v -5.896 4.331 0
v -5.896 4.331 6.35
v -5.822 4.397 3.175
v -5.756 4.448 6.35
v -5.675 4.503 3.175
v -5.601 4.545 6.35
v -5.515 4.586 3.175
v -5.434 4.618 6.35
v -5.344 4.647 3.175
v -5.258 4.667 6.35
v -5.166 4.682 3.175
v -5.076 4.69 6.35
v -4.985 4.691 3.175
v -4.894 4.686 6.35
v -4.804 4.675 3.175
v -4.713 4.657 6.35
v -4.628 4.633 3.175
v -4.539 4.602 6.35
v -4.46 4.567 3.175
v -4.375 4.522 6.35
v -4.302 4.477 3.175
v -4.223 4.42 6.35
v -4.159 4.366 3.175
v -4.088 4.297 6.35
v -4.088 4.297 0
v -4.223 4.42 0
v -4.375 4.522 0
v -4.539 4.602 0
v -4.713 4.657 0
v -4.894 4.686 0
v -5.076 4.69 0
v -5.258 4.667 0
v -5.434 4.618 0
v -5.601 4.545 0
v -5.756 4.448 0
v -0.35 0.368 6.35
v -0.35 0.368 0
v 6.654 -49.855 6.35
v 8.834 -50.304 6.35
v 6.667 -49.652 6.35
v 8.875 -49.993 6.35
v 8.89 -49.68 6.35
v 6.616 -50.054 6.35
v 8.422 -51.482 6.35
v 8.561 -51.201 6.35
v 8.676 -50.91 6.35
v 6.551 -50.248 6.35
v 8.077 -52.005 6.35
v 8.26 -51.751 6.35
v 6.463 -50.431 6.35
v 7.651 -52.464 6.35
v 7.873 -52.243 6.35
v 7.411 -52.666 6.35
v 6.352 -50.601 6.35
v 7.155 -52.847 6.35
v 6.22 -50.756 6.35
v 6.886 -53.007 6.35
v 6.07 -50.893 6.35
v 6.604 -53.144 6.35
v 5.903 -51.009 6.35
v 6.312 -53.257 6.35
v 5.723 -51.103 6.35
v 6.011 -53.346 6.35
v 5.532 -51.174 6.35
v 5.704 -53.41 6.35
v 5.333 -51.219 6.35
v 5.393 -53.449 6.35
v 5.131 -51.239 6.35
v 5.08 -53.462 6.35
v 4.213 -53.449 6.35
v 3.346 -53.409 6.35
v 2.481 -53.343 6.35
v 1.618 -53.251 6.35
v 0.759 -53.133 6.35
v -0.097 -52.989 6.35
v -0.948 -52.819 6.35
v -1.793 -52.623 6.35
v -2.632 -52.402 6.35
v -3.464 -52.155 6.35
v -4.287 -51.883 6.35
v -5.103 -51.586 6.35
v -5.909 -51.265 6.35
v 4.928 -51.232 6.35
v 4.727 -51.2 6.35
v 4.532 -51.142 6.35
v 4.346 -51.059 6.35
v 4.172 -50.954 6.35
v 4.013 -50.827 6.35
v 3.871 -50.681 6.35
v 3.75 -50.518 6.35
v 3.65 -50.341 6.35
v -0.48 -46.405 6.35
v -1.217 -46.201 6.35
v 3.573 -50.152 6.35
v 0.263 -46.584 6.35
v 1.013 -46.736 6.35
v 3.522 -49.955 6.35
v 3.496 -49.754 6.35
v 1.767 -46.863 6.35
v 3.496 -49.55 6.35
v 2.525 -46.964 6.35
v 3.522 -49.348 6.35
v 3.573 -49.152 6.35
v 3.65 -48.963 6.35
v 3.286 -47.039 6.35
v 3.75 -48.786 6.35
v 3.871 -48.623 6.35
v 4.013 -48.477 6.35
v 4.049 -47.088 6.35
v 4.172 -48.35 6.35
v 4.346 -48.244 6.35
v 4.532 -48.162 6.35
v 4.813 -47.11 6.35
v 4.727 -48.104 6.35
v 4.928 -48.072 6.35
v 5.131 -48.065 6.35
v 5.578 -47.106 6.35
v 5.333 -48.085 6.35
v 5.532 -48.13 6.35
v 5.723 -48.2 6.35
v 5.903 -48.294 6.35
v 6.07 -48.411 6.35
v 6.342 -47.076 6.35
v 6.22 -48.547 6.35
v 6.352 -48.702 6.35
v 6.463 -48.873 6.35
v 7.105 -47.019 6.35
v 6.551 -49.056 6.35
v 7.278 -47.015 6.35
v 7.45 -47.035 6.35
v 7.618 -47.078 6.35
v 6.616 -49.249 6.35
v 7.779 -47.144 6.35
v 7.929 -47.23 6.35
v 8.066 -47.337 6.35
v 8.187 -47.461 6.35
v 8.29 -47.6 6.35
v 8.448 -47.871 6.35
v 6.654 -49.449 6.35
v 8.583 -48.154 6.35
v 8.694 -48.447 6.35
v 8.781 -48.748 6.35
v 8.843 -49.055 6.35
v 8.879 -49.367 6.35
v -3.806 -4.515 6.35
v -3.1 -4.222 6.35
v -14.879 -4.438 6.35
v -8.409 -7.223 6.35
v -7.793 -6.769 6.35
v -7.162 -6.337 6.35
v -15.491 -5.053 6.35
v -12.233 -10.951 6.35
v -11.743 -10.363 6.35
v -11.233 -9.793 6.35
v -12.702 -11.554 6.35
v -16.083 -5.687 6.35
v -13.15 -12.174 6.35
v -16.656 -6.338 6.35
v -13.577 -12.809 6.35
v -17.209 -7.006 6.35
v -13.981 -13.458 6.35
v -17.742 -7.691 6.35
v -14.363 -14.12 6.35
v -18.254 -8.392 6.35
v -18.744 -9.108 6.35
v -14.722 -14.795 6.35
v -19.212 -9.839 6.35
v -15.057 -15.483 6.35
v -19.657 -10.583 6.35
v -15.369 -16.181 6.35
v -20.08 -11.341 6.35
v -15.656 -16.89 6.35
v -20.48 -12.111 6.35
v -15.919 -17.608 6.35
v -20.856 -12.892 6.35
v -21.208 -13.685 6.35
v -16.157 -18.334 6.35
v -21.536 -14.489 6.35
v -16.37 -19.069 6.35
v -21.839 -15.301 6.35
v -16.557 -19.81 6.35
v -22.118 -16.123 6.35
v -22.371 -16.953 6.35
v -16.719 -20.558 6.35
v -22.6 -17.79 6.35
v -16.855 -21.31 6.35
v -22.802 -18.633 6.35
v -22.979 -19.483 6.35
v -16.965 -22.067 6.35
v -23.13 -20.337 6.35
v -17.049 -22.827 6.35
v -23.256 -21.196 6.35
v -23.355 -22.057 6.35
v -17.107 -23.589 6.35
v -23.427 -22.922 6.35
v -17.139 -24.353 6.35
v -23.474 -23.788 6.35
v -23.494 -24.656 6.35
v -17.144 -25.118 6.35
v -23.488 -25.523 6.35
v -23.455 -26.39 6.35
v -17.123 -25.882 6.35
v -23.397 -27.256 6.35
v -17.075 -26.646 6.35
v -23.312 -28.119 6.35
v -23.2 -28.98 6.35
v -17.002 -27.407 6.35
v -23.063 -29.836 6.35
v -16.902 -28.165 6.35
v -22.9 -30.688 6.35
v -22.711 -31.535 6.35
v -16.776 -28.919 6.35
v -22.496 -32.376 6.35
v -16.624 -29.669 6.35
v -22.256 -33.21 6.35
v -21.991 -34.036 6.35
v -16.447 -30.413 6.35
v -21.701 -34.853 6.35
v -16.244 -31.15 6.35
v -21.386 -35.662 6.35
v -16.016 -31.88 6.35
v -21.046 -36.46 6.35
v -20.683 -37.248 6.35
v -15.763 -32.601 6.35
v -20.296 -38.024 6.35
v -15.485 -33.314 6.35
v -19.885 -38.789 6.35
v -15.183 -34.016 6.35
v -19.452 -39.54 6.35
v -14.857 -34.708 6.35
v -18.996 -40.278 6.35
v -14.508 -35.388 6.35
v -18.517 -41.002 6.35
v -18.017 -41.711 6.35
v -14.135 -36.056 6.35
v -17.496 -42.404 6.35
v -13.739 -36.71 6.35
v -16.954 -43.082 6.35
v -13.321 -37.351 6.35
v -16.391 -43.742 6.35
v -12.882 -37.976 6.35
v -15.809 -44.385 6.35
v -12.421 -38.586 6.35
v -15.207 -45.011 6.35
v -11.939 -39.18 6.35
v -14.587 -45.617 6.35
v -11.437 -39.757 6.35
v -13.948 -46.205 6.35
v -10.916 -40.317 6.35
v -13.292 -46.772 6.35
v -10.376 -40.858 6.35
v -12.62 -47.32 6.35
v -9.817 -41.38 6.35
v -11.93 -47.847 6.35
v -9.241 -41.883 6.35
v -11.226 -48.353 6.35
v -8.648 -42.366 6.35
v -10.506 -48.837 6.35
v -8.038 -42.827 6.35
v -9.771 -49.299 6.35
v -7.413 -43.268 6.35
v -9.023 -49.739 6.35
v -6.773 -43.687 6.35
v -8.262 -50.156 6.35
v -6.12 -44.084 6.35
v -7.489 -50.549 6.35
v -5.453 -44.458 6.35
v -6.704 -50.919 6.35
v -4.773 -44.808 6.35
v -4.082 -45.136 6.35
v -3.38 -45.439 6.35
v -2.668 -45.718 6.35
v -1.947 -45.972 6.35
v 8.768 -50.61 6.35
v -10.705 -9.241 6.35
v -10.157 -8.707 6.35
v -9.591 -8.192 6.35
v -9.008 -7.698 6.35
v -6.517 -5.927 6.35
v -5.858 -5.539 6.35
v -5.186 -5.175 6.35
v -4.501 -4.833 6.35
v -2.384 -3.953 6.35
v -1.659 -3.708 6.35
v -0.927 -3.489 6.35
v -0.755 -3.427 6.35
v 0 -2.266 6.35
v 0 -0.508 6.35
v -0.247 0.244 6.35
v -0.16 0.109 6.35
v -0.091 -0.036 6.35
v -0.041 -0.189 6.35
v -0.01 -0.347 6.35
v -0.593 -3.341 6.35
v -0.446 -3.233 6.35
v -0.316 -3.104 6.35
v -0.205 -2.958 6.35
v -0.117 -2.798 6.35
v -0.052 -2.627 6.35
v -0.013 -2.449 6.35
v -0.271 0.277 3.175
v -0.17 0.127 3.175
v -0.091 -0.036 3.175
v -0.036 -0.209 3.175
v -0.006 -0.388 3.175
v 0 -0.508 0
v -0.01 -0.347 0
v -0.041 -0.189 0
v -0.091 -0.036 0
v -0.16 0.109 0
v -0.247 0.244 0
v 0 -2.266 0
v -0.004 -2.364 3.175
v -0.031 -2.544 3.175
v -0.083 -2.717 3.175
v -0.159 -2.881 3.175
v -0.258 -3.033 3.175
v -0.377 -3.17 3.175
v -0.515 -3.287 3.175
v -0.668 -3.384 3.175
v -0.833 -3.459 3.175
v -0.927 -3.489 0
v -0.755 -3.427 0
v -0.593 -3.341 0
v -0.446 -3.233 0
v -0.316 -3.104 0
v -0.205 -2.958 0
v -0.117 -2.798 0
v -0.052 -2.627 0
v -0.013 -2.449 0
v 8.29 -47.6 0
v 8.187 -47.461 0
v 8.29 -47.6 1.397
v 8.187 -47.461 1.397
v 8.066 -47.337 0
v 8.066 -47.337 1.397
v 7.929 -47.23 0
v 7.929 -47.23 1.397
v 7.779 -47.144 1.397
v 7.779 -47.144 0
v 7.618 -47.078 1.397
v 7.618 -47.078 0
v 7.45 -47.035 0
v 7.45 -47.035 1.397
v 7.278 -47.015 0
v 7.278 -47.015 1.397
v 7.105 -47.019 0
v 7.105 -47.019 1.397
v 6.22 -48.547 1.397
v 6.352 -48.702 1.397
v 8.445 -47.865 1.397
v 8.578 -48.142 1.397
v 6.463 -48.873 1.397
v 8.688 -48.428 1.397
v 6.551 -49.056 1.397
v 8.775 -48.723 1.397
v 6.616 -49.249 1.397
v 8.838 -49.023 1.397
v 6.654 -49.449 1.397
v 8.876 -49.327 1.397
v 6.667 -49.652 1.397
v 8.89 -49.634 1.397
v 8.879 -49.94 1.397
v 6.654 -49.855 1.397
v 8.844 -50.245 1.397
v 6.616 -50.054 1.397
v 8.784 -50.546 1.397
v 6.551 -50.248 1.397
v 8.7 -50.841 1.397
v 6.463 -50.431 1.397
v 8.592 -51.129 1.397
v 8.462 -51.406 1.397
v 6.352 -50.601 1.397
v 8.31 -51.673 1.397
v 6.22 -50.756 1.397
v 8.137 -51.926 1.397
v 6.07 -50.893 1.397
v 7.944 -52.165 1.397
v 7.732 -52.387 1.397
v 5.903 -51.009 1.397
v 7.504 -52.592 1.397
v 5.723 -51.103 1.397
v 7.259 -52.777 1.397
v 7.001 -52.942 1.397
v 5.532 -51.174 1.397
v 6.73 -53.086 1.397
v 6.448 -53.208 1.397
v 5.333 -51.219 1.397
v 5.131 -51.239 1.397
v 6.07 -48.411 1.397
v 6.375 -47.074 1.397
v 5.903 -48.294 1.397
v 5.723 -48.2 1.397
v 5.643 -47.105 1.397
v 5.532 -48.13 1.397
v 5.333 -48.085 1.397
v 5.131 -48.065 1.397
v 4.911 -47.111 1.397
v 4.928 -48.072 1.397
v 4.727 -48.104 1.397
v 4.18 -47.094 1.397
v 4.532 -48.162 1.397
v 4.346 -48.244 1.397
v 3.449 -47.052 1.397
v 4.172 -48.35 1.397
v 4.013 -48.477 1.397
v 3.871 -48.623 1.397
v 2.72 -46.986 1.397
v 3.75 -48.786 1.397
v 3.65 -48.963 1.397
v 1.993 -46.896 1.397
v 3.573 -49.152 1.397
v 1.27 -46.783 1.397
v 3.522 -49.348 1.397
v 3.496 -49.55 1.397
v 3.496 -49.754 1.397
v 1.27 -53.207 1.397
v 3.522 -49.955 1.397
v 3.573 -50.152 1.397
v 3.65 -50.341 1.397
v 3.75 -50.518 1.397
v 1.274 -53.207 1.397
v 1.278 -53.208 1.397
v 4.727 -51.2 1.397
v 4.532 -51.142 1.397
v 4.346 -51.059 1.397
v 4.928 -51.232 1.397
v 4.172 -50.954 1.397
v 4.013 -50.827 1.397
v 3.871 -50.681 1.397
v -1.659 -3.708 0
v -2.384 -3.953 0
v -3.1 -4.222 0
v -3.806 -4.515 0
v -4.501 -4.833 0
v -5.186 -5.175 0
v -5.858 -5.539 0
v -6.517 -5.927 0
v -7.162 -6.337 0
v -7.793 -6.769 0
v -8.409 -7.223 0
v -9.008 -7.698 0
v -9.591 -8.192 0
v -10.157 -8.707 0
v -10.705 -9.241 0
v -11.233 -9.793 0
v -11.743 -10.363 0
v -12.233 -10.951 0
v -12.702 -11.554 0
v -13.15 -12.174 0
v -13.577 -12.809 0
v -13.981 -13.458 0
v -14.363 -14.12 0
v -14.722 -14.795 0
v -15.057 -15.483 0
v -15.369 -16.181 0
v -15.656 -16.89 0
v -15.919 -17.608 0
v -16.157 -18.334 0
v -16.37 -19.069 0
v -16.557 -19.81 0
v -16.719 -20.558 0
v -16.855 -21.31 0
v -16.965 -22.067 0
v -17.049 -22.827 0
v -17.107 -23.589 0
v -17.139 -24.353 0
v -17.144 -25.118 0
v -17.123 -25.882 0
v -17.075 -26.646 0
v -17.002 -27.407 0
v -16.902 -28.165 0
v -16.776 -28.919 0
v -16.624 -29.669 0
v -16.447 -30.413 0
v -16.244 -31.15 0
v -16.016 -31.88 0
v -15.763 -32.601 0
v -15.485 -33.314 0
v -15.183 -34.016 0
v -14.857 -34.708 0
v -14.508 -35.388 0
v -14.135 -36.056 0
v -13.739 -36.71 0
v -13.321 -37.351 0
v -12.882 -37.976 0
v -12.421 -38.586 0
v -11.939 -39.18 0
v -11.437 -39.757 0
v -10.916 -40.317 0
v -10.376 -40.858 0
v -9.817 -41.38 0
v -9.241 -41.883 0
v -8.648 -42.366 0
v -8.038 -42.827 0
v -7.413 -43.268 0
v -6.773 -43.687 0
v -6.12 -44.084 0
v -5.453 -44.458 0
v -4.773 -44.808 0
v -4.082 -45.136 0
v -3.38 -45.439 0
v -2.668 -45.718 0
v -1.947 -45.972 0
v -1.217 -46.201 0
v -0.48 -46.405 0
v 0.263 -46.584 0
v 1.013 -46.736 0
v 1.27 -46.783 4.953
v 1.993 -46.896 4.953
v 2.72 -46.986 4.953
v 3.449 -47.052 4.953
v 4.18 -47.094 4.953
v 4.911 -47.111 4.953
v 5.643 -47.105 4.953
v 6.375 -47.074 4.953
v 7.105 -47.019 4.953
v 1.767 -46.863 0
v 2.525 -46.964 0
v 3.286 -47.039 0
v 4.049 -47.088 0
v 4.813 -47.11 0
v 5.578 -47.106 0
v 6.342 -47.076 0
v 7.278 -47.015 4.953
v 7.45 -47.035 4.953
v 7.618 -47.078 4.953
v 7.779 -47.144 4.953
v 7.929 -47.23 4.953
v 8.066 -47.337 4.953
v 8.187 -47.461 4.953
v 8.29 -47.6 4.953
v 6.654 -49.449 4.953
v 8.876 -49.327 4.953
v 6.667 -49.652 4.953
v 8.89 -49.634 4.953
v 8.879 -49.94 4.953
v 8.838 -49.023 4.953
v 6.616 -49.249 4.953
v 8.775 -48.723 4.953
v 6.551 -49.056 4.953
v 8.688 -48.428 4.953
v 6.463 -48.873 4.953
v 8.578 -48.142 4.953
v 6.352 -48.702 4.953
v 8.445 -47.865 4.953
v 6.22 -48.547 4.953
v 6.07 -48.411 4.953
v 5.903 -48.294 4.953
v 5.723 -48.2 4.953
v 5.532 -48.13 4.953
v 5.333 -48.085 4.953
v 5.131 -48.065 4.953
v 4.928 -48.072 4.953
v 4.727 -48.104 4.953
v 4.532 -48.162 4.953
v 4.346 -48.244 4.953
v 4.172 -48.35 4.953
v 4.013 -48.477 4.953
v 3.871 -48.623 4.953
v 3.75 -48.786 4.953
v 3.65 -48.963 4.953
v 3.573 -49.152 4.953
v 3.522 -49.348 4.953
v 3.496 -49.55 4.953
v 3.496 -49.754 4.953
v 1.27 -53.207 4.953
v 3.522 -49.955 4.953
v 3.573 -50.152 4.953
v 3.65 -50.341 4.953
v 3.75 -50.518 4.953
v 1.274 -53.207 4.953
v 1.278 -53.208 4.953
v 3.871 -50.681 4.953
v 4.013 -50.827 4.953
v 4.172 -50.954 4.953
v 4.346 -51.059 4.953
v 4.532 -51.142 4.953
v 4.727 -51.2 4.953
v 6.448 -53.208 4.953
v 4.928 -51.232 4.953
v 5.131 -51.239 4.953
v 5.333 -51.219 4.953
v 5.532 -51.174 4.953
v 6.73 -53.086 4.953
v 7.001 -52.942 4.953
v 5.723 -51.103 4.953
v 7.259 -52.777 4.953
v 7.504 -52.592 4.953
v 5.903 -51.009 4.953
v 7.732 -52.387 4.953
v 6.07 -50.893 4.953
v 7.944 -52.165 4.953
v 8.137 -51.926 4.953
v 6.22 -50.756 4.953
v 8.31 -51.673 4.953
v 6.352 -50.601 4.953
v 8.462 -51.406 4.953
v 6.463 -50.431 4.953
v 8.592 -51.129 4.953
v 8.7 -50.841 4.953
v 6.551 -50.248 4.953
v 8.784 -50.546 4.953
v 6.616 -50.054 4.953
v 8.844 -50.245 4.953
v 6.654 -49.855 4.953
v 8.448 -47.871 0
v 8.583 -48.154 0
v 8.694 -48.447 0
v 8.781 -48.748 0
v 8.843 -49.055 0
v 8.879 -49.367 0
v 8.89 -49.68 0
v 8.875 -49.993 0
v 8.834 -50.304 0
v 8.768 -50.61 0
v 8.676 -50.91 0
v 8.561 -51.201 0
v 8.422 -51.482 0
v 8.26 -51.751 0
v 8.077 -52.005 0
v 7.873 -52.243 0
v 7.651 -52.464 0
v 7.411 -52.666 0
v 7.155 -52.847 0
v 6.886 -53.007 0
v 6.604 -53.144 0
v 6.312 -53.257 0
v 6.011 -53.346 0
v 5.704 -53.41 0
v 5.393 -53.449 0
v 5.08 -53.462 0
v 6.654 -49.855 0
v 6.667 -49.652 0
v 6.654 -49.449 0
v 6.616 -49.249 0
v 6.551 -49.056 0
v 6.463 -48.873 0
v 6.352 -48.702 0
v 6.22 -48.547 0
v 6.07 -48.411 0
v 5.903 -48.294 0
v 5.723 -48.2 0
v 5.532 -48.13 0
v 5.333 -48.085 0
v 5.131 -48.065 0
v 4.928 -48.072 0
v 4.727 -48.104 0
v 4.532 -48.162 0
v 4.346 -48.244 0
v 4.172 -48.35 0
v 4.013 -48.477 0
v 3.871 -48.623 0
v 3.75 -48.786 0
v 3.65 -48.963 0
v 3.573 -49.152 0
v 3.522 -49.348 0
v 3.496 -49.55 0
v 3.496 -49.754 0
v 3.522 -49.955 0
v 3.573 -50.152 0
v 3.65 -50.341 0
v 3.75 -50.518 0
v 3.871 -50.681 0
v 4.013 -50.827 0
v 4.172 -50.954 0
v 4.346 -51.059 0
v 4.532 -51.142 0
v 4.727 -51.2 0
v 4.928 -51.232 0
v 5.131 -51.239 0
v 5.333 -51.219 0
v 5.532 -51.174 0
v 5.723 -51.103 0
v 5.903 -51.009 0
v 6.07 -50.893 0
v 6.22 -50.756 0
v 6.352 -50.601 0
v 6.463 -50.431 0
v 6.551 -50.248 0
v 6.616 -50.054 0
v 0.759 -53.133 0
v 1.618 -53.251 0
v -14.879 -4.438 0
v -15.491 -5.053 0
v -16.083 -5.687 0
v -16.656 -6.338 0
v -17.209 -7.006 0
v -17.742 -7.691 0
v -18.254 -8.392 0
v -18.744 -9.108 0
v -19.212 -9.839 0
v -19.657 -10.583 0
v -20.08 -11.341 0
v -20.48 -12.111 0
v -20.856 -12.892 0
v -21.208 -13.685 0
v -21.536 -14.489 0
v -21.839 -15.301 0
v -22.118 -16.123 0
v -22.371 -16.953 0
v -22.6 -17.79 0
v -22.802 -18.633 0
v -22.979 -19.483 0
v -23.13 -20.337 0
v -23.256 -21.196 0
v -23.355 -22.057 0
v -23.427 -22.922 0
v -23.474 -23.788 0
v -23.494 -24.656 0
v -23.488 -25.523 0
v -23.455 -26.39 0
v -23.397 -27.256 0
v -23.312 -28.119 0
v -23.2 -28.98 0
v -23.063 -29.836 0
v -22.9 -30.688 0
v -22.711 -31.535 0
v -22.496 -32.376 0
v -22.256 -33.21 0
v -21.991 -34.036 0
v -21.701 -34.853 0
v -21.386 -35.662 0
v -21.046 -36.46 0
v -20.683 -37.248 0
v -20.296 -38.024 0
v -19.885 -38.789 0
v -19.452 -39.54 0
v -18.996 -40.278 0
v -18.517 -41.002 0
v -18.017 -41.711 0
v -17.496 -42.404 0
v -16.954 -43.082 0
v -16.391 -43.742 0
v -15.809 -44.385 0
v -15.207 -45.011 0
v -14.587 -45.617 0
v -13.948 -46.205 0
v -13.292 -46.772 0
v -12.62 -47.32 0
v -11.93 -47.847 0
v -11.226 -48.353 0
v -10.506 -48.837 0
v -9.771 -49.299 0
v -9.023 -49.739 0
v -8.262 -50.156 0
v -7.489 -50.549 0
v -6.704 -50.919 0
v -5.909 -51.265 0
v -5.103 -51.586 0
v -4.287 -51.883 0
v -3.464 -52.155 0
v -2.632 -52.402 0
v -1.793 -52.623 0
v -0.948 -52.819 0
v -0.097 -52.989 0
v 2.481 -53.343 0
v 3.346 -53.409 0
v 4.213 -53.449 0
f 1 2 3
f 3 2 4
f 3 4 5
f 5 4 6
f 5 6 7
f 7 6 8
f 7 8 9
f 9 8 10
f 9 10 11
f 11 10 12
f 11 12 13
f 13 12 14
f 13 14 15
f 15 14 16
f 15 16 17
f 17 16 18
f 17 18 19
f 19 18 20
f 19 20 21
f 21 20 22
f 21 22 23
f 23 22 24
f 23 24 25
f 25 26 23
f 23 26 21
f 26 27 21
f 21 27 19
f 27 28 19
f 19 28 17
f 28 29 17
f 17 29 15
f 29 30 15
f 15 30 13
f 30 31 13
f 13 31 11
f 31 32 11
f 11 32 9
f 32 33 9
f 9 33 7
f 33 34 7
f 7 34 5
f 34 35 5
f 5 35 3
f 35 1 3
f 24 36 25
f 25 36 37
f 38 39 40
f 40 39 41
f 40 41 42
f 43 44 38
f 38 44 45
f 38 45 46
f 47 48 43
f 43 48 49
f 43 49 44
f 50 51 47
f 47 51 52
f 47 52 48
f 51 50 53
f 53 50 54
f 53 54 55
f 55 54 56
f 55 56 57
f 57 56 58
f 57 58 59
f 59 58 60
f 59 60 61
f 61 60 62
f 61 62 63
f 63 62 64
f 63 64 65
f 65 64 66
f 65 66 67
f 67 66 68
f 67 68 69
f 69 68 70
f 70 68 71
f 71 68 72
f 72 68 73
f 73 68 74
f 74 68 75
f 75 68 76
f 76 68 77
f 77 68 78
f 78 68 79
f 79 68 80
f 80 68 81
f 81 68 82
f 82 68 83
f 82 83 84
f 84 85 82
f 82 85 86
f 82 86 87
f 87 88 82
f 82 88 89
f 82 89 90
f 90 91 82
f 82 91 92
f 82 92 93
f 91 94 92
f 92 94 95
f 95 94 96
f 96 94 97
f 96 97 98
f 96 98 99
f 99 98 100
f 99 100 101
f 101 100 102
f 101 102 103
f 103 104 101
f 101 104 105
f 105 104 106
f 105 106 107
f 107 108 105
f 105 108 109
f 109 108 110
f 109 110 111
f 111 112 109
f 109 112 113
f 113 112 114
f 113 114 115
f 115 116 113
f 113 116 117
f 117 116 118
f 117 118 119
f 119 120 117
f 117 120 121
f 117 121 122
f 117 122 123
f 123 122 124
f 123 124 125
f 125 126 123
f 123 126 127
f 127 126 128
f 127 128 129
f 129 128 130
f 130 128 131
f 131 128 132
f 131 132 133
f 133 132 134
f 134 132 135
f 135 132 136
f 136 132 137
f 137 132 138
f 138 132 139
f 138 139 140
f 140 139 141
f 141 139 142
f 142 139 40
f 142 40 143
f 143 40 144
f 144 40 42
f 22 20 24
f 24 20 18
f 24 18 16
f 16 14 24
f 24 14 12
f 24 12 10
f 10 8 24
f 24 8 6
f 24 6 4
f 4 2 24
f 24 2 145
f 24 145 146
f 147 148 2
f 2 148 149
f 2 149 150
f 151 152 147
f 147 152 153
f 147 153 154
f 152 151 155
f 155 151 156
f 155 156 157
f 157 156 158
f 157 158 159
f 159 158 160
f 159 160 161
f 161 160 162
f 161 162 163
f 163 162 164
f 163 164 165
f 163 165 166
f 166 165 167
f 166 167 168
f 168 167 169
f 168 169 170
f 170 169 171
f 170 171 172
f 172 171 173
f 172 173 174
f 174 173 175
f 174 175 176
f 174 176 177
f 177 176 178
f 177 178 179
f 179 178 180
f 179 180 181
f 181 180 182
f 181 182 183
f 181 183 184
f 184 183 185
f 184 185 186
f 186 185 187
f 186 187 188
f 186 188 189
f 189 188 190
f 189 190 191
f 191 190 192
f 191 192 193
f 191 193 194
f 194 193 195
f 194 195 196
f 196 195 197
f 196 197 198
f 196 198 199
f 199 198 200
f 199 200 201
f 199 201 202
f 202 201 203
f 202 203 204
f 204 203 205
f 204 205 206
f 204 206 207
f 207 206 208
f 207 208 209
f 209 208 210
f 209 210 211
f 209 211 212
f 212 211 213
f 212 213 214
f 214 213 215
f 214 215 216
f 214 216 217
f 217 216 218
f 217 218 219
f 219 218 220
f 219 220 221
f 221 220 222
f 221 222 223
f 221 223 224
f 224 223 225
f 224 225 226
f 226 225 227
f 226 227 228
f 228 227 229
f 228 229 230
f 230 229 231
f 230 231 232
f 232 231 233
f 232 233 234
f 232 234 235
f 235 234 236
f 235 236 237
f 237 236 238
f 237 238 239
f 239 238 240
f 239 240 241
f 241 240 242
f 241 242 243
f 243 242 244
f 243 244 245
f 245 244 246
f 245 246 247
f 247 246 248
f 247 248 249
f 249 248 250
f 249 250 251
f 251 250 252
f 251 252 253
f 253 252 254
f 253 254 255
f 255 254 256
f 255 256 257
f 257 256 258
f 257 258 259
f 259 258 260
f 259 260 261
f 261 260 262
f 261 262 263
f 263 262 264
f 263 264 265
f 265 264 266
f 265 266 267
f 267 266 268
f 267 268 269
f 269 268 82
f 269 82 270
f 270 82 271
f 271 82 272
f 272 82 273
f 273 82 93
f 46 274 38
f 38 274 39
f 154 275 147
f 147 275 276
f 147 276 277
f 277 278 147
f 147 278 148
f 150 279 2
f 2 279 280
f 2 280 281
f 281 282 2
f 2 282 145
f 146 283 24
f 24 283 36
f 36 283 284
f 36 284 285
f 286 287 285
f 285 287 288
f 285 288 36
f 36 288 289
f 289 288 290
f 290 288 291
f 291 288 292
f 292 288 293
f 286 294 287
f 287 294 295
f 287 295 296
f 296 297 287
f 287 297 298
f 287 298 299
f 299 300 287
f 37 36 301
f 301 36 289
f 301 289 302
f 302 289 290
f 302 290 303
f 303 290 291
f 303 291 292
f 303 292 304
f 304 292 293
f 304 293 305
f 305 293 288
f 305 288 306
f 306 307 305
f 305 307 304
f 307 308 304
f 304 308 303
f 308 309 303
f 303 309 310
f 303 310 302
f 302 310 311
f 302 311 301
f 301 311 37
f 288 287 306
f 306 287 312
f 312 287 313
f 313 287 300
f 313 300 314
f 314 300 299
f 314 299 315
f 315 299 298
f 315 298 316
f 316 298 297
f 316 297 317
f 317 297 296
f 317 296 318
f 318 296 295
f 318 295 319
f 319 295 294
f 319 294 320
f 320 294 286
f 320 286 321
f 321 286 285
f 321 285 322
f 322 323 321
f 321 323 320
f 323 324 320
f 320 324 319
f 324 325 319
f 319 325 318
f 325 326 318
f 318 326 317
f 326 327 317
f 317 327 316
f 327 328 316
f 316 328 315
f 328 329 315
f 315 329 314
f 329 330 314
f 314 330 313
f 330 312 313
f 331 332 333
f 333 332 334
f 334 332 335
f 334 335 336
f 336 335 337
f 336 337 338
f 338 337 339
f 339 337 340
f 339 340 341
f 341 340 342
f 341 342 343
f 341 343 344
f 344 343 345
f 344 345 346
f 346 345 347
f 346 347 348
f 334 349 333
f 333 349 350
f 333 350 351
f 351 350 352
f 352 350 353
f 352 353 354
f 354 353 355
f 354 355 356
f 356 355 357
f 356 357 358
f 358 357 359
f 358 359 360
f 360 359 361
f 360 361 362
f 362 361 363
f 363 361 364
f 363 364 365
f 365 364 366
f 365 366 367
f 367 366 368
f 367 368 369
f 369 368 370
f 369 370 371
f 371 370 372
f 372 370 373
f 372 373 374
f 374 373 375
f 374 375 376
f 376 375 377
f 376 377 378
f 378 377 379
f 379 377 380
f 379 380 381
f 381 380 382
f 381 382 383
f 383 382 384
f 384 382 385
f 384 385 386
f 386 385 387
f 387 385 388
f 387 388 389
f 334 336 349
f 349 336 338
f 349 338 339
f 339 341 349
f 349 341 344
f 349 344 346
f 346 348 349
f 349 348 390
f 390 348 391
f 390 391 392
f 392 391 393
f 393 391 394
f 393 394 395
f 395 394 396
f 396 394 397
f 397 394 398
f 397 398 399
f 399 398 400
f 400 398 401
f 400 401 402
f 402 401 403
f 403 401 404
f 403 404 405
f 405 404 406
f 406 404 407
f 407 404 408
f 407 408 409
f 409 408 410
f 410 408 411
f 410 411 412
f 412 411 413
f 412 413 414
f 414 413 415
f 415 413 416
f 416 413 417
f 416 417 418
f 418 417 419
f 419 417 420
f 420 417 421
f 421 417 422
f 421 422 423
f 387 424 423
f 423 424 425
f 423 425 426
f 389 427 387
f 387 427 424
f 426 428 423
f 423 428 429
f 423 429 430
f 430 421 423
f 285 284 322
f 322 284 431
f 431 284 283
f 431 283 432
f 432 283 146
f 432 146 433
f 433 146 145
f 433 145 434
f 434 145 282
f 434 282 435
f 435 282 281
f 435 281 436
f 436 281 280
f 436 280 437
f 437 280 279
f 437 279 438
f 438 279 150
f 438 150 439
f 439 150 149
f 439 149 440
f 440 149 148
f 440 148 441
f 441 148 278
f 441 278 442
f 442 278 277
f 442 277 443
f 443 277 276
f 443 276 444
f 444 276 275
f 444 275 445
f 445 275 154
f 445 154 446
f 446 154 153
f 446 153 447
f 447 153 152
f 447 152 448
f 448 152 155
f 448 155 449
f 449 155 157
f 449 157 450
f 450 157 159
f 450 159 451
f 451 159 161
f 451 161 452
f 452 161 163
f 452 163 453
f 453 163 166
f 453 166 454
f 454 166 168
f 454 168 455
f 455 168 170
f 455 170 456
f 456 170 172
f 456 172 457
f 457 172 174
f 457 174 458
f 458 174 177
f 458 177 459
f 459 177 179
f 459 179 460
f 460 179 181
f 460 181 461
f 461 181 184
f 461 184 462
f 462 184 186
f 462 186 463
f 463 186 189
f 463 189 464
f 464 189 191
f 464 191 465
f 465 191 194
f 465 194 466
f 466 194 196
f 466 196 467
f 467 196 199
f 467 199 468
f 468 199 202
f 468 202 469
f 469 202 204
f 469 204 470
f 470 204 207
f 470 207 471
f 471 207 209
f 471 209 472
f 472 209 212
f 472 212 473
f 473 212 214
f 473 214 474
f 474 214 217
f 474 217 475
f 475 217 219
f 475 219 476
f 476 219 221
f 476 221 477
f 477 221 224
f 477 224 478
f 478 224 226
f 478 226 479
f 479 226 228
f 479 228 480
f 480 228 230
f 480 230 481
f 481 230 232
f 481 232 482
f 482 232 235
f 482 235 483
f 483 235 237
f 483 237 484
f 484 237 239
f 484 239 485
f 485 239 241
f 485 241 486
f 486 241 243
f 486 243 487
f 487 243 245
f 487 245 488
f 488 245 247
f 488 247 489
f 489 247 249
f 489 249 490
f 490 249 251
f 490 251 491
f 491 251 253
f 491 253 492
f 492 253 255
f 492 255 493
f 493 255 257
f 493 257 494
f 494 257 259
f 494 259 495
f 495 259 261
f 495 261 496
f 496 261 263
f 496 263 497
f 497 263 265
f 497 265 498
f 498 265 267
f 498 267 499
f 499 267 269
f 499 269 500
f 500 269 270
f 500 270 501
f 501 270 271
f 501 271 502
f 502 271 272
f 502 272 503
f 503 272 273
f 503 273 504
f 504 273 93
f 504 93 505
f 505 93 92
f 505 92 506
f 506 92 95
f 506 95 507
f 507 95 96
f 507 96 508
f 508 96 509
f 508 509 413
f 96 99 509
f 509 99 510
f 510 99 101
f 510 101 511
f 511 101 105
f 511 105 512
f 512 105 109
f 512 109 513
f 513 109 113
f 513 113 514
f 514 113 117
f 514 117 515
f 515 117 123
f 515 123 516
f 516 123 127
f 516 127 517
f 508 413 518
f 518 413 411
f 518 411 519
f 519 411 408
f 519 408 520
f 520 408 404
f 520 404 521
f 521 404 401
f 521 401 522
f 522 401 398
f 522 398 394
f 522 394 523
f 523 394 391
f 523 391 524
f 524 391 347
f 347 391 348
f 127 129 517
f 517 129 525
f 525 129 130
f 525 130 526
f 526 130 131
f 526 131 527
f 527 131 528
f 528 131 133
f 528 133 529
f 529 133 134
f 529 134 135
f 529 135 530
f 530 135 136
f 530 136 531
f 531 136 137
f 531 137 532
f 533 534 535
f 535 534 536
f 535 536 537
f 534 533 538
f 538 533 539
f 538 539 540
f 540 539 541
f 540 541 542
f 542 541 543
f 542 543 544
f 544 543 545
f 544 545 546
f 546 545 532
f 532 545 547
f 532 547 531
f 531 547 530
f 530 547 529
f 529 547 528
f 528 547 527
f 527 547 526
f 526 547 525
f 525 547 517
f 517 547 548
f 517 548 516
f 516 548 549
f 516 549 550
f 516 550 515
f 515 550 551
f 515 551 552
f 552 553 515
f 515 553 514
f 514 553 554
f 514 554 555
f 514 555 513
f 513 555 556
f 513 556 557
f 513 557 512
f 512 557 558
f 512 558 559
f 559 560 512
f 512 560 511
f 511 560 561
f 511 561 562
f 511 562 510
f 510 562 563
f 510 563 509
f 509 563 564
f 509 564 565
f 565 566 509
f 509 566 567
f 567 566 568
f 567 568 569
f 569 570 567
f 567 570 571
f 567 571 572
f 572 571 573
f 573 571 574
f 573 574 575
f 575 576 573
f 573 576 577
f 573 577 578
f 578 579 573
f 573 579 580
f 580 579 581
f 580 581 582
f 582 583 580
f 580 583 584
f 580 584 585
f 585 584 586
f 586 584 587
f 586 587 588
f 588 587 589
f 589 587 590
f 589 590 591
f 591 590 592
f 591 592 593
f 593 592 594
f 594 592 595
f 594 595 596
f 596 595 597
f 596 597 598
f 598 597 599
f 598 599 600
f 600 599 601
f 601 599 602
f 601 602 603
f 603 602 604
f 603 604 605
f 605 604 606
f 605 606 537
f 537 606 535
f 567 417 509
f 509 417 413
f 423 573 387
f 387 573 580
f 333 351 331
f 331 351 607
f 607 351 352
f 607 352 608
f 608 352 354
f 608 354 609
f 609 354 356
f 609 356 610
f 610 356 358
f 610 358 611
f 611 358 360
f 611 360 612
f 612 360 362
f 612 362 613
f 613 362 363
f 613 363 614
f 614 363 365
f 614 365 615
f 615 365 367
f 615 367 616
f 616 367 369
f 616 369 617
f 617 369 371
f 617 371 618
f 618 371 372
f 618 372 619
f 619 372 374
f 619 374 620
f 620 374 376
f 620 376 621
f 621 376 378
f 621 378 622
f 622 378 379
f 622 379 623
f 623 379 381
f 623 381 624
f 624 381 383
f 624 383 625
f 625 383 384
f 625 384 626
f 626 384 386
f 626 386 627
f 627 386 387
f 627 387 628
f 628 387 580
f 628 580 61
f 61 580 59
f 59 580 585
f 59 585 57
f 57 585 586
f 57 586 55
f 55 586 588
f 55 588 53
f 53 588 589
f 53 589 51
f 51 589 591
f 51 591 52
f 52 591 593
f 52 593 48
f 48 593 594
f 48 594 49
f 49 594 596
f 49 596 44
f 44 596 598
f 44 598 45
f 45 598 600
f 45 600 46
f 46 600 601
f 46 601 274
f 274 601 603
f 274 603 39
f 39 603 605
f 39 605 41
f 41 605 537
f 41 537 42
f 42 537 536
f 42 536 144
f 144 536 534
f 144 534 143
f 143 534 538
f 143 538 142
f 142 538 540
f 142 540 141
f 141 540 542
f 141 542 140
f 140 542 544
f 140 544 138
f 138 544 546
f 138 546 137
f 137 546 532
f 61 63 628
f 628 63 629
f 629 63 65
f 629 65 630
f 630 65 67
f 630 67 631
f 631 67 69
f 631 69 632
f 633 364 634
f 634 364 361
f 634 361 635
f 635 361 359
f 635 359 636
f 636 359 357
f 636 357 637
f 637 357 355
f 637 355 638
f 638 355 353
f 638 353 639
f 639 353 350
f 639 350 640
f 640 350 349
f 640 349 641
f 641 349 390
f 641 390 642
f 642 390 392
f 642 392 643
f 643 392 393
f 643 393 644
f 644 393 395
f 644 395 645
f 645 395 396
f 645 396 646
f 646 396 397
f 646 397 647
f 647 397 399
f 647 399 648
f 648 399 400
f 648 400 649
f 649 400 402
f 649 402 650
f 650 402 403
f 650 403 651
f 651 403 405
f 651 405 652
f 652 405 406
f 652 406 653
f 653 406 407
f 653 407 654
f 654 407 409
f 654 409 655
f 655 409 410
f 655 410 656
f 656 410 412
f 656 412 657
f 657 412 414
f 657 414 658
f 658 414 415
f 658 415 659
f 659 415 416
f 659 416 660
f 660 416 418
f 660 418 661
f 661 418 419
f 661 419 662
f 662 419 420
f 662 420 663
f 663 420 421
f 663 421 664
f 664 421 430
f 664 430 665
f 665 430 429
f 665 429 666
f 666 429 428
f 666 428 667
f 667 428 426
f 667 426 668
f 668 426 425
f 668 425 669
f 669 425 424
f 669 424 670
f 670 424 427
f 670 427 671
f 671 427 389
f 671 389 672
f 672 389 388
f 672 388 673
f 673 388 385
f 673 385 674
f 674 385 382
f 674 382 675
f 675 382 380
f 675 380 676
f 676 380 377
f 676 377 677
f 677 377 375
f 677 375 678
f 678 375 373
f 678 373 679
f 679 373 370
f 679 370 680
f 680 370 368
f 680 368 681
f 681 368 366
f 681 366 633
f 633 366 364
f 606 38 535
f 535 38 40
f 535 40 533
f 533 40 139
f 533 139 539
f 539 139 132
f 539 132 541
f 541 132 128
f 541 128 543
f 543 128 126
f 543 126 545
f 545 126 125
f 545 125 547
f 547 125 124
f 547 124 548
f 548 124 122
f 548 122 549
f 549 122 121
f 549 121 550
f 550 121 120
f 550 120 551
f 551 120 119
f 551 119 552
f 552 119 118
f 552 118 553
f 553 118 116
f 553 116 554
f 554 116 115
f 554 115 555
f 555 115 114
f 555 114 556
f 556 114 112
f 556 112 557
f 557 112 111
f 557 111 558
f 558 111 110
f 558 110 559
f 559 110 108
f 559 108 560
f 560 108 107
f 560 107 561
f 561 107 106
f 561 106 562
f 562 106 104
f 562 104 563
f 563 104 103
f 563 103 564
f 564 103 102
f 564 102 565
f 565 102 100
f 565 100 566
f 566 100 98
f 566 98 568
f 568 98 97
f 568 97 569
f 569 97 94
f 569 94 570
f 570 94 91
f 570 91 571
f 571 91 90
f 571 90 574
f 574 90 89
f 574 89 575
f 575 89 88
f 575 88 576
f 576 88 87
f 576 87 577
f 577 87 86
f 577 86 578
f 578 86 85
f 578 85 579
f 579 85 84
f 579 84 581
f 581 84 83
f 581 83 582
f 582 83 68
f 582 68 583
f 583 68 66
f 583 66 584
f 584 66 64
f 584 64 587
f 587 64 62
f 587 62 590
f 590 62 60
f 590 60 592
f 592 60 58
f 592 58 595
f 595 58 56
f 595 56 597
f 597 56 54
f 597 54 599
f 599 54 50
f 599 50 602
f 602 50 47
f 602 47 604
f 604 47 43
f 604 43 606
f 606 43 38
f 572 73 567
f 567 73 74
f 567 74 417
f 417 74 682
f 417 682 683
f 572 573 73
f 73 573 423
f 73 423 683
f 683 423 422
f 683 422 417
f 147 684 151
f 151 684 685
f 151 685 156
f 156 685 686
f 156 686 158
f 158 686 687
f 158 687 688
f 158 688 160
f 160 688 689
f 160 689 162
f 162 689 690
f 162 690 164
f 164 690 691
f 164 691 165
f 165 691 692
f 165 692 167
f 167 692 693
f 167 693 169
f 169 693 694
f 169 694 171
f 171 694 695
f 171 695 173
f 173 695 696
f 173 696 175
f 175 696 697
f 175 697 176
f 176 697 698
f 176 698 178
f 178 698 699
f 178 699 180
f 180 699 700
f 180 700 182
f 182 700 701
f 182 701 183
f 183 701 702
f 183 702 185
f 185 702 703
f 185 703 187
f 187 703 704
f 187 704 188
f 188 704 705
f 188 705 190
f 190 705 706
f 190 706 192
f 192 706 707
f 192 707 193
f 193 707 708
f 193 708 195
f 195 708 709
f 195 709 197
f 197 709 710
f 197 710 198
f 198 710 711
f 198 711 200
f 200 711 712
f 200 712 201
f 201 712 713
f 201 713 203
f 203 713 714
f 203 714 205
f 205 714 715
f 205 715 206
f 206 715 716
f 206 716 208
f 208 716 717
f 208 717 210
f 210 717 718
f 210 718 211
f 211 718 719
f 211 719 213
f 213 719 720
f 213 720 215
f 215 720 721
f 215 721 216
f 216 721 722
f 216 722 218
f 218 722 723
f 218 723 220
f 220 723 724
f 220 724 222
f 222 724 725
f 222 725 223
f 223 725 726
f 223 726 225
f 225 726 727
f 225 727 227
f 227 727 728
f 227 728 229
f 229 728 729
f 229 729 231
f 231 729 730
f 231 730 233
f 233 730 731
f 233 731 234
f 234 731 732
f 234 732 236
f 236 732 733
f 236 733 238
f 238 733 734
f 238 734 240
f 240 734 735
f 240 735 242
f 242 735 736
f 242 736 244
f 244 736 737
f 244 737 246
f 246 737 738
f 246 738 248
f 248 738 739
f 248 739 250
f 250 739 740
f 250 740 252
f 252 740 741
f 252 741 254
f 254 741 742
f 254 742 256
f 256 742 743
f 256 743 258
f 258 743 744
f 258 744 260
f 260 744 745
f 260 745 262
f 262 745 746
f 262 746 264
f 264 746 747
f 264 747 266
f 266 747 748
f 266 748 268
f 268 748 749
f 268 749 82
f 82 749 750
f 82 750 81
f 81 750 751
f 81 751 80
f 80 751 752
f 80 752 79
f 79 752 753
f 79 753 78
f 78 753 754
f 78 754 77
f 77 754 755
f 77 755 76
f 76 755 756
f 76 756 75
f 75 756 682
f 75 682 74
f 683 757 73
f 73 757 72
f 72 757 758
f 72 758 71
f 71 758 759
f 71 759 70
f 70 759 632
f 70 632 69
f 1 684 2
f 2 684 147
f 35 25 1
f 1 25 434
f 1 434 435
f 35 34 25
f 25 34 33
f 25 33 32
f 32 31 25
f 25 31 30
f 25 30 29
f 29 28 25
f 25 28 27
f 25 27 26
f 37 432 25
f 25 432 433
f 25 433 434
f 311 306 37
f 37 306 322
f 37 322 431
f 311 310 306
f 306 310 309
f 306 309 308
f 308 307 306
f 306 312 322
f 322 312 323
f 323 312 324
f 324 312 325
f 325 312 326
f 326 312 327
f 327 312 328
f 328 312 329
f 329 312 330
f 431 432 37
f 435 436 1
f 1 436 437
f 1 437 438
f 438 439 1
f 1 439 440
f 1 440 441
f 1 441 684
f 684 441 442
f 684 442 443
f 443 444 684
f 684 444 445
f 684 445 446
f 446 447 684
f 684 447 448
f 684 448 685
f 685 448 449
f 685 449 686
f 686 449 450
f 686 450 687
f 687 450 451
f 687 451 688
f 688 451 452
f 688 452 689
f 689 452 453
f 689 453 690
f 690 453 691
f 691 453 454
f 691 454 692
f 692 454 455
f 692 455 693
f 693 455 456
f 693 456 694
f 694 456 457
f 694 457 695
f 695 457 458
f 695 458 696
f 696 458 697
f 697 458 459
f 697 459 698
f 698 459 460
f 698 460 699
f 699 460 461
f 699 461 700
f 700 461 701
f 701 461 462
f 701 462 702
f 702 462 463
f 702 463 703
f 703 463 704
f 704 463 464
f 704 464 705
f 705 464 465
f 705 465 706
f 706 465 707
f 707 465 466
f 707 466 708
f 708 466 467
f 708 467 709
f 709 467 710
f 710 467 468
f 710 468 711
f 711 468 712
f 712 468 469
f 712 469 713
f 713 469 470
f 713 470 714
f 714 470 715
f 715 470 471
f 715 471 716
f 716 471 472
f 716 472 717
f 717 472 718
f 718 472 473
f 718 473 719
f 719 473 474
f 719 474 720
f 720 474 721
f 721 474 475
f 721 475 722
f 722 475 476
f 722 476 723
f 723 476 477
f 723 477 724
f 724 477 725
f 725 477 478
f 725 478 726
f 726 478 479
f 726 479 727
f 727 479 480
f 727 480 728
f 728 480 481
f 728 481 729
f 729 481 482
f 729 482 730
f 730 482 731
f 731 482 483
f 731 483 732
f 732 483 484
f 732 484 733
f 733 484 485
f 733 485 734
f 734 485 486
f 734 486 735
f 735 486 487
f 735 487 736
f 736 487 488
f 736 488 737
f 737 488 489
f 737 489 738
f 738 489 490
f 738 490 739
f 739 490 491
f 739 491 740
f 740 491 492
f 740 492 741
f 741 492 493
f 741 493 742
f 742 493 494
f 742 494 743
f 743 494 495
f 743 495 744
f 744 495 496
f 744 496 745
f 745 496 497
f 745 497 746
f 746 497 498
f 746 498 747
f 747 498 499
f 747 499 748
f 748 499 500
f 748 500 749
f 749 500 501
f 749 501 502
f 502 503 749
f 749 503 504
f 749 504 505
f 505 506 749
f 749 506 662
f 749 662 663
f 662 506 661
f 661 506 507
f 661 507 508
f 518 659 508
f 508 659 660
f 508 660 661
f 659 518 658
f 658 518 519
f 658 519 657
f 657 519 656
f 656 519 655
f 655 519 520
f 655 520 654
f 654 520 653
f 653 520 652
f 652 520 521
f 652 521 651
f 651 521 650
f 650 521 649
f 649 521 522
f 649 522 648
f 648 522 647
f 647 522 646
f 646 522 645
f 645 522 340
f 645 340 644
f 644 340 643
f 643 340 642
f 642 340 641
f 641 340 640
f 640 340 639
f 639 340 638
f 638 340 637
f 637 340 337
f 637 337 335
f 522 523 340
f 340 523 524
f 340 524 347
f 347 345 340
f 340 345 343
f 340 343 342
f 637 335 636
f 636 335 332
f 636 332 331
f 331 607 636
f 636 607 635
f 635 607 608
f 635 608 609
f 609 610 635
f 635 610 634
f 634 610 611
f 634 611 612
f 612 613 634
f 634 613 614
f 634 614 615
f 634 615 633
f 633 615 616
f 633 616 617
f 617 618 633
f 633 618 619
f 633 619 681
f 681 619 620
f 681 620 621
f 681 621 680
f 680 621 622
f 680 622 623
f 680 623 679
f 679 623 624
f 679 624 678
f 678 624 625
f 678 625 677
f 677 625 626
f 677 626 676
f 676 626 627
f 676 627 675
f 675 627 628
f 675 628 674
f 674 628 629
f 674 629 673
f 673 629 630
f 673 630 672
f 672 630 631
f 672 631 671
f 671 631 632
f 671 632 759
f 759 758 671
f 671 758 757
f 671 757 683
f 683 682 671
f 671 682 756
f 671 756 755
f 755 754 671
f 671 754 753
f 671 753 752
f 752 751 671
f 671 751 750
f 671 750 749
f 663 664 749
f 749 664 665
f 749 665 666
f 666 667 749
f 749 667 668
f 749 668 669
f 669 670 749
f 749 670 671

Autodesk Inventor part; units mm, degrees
ref_plane "XZ Plane" through (0, 0, 0) normal (0, 1, 0) x (-1, 0, 0)
ref_plane "XY Plane" through (0, 0, 0) normal (0, 0, 1) x (1, 0, 0)
sketch "Sketch1" plane through (0, 0, 0) normal (0, 0, 1) x (1, 0, 0)
  line L0 (0, 0) -> (4.826, 4.3221)
  line L1 (4.826, 4.3221) -> (10.16, 0)
  line L2 (10.16, 0) -> (11.43, 6.2217)
  line L3 (0, 0) -> (-4.975, 5.229)
  arc A0 (11.43, 6.2217) -> (-4.975, 5.229) centre (5.08, -24.8868) ccw
  circle A1 centre (5.08, -24.8868) radius 25.4 construction
  circle A2 centre (5.08, -24.8868) radius 21.59 construction
  arc A3 (5.08, -47.1118) -> (7.7653, -46.949) centre (5.08, -24.8868) ccw
  circle A4 centre (5.08, -49.6518) radius 1.5875
  line L4 (5.08, -49.6518) -> (5.08, -46.4768) construction
  arc A5 (-14.879, -4.4376) -> (5.08, -53.4618) centre (5.08, -24.8868) ccw
  arc A6 (5.08, -53.4618) -> (7.7653, -46.949) centre (5.08, -49.6518) ccw
  line L5 (0, 0) -> (0, -3.2502)
  line L6 (-4.975, 5.229) -> (-14.879, -4.4376)
  arc A7 (0, -3.2502) -> (5.08, -47.1118) centre (5.08, -24.8868) ccw
  dimension "d40" = 43.18
  dimension "d0" = 31.75
  dimension "d2" = 50.8
  dimension "d3" = 29.21
  dimension "d4" = 30
  dimension "d5" = 10.16
  dimension "d6" = 5.334
  dimension "d42" = 44.45
  dimension "d43" = 3.175
  dimension "d44" = 3.175
  dimension "d47" = 3.81
extrude "Extrusion1" add sketch "Sketch1" along normal blind 6.35 contours L5 A7 A3 A6 A5 L6 L3
ref_plane "Work Plane1" through (8.89, -49.6518, 0) normal (1, 0, 0) x (0, 1, 0)
sketch "Sketch5" plane through (8.89, -49.6518, 0) normal (1, 0, 0) x (0, 1, 0)
  line L0 (-1.5875, 6.35) -> (1.5875, 6.35) construction
  line L1 (1.5875, 0) -> (-1.5875, 0) construction
  line L2 (-3.556, 1.397) -> (3.556, 1.397)
  line L3 (3.556, 1.397) -> (3.556, 4.953)
  line L4 (3.556, 4.953) -> (-3.556, 4.953)
  line L5 (-3.556, 4.953) -> (-3.556, 1.397)
  line L6 (-3.81, 0) -> (-3.81, 6.35) construction
  point P0 (49.6518, 0)
  point P1 (3.556, 3.175)
  point P2 (-3.81, 3.175)
  point P3 (0, 4.953)
  point P4 (0, 6.35)
  dimension "d48" = 3.556
  dimension "d49" = 7.112
extrude "Extrusion5" cut sketch "Sketch5" against normal blind 7.62
fillet "Fillet2" radius 1.27 5 edges at (7.7653, -46.949, 5.6515) (7.7653, -46.949, 0.6985) (0, -3.2502, 3.175) (0, 0, 3.175) (-4.975, 5.229, 3.175)
properties part number "BearingHolder1" material "ABS Plastic"
